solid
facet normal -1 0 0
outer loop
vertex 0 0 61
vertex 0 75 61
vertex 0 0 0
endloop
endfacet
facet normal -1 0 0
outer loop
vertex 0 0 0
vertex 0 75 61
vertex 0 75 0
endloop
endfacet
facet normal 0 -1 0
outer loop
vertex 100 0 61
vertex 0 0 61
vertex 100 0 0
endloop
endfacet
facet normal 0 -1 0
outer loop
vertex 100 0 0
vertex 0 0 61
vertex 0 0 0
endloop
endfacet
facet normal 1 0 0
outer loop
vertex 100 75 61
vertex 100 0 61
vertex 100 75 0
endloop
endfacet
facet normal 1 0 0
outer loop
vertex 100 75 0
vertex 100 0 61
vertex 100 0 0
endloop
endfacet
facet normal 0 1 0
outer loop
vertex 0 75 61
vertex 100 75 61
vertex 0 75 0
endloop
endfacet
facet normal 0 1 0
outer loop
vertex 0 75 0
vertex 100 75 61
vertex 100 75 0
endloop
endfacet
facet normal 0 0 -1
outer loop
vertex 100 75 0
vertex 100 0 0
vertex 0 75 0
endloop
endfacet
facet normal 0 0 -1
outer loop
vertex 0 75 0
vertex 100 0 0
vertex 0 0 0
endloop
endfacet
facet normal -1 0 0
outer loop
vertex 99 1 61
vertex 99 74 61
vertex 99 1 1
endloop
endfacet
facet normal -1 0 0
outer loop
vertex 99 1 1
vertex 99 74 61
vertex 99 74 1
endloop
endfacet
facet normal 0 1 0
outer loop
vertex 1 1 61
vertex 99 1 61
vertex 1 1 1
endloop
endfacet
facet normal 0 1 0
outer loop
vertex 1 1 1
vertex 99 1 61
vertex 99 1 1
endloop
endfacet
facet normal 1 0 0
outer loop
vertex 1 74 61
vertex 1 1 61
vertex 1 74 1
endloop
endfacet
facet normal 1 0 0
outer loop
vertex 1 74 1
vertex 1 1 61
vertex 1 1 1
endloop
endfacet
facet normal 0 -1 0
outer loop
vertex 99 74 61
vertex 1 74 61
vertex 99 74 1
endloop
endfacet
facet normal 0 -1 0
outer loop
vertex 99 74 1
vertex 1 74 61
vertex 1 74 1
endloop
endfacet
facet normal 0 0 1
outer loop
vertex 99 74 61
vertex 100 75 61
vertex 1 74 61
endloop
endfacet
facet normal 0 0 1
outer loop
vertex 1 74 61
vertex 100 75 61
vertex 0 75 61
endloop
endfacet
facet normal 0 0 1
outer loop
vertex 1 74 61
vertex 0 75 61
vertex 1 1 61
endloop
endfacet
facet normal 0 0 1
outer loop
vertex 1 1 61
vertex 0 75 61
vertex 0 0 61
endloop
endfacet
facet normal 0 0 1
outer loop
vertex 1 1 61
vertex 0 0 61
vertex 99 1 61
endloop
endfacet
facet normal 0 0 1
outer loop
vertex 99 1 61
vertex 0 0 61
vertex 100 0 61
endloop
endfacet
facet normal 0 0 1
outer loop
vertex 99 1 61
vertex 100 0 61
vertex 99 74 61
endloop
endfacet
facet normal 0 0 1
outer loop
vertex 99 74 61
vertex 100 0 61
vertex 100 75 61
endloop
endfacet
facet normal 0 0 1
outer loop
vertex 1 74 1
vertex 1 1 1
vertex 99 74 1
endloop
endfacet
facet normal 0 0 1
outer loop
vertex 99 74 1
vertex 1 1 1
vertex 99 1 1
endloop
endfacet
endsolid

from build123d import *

# Parameters (mm, degrees)
SKETCH1_W           = 100
SKETCH1_H           = 75
BOSS_EXTRUDE1_DEPTH = 1
SKETCH2_W           = 1
SKETCH2_H           = 73
BOSS_EXTRUDE2_DEPTH = 60


with BuildPart() as part:
    # Sketch1 → Boss-Extrude1 (new body)
    with BuildSketch(Plane.XY):
        with Locations((50, 37.5)):
            Rectangle(SKETCH1_W, SKETCH1_H)
    extrude(amount=BOSS_EXTRUDE1_DEPTH)

    # Sketch2 → Boss-Extrude2 (add)
    with BuildSketch(Plane.XY.offset(1)):
        Polygon((100, 75), (0, 75), (0, 74), (1, 74), (99, 74), (100, 74), align=None)
        with Locations((0.5, 37.5)):
            Rectangle(SKETCH2_W, SKETCH2_H)
        Polygon((1, 1), (0, 1), (0, 0), (99, 0), (99, 1), align=None)
        Polygon((100, 0), (100, 74), (99, 74), (99, 1), (99, 0), align=None)
    extrude(amount=BOSS_EXTRUDE2_DEPTH)


solid = part.part
